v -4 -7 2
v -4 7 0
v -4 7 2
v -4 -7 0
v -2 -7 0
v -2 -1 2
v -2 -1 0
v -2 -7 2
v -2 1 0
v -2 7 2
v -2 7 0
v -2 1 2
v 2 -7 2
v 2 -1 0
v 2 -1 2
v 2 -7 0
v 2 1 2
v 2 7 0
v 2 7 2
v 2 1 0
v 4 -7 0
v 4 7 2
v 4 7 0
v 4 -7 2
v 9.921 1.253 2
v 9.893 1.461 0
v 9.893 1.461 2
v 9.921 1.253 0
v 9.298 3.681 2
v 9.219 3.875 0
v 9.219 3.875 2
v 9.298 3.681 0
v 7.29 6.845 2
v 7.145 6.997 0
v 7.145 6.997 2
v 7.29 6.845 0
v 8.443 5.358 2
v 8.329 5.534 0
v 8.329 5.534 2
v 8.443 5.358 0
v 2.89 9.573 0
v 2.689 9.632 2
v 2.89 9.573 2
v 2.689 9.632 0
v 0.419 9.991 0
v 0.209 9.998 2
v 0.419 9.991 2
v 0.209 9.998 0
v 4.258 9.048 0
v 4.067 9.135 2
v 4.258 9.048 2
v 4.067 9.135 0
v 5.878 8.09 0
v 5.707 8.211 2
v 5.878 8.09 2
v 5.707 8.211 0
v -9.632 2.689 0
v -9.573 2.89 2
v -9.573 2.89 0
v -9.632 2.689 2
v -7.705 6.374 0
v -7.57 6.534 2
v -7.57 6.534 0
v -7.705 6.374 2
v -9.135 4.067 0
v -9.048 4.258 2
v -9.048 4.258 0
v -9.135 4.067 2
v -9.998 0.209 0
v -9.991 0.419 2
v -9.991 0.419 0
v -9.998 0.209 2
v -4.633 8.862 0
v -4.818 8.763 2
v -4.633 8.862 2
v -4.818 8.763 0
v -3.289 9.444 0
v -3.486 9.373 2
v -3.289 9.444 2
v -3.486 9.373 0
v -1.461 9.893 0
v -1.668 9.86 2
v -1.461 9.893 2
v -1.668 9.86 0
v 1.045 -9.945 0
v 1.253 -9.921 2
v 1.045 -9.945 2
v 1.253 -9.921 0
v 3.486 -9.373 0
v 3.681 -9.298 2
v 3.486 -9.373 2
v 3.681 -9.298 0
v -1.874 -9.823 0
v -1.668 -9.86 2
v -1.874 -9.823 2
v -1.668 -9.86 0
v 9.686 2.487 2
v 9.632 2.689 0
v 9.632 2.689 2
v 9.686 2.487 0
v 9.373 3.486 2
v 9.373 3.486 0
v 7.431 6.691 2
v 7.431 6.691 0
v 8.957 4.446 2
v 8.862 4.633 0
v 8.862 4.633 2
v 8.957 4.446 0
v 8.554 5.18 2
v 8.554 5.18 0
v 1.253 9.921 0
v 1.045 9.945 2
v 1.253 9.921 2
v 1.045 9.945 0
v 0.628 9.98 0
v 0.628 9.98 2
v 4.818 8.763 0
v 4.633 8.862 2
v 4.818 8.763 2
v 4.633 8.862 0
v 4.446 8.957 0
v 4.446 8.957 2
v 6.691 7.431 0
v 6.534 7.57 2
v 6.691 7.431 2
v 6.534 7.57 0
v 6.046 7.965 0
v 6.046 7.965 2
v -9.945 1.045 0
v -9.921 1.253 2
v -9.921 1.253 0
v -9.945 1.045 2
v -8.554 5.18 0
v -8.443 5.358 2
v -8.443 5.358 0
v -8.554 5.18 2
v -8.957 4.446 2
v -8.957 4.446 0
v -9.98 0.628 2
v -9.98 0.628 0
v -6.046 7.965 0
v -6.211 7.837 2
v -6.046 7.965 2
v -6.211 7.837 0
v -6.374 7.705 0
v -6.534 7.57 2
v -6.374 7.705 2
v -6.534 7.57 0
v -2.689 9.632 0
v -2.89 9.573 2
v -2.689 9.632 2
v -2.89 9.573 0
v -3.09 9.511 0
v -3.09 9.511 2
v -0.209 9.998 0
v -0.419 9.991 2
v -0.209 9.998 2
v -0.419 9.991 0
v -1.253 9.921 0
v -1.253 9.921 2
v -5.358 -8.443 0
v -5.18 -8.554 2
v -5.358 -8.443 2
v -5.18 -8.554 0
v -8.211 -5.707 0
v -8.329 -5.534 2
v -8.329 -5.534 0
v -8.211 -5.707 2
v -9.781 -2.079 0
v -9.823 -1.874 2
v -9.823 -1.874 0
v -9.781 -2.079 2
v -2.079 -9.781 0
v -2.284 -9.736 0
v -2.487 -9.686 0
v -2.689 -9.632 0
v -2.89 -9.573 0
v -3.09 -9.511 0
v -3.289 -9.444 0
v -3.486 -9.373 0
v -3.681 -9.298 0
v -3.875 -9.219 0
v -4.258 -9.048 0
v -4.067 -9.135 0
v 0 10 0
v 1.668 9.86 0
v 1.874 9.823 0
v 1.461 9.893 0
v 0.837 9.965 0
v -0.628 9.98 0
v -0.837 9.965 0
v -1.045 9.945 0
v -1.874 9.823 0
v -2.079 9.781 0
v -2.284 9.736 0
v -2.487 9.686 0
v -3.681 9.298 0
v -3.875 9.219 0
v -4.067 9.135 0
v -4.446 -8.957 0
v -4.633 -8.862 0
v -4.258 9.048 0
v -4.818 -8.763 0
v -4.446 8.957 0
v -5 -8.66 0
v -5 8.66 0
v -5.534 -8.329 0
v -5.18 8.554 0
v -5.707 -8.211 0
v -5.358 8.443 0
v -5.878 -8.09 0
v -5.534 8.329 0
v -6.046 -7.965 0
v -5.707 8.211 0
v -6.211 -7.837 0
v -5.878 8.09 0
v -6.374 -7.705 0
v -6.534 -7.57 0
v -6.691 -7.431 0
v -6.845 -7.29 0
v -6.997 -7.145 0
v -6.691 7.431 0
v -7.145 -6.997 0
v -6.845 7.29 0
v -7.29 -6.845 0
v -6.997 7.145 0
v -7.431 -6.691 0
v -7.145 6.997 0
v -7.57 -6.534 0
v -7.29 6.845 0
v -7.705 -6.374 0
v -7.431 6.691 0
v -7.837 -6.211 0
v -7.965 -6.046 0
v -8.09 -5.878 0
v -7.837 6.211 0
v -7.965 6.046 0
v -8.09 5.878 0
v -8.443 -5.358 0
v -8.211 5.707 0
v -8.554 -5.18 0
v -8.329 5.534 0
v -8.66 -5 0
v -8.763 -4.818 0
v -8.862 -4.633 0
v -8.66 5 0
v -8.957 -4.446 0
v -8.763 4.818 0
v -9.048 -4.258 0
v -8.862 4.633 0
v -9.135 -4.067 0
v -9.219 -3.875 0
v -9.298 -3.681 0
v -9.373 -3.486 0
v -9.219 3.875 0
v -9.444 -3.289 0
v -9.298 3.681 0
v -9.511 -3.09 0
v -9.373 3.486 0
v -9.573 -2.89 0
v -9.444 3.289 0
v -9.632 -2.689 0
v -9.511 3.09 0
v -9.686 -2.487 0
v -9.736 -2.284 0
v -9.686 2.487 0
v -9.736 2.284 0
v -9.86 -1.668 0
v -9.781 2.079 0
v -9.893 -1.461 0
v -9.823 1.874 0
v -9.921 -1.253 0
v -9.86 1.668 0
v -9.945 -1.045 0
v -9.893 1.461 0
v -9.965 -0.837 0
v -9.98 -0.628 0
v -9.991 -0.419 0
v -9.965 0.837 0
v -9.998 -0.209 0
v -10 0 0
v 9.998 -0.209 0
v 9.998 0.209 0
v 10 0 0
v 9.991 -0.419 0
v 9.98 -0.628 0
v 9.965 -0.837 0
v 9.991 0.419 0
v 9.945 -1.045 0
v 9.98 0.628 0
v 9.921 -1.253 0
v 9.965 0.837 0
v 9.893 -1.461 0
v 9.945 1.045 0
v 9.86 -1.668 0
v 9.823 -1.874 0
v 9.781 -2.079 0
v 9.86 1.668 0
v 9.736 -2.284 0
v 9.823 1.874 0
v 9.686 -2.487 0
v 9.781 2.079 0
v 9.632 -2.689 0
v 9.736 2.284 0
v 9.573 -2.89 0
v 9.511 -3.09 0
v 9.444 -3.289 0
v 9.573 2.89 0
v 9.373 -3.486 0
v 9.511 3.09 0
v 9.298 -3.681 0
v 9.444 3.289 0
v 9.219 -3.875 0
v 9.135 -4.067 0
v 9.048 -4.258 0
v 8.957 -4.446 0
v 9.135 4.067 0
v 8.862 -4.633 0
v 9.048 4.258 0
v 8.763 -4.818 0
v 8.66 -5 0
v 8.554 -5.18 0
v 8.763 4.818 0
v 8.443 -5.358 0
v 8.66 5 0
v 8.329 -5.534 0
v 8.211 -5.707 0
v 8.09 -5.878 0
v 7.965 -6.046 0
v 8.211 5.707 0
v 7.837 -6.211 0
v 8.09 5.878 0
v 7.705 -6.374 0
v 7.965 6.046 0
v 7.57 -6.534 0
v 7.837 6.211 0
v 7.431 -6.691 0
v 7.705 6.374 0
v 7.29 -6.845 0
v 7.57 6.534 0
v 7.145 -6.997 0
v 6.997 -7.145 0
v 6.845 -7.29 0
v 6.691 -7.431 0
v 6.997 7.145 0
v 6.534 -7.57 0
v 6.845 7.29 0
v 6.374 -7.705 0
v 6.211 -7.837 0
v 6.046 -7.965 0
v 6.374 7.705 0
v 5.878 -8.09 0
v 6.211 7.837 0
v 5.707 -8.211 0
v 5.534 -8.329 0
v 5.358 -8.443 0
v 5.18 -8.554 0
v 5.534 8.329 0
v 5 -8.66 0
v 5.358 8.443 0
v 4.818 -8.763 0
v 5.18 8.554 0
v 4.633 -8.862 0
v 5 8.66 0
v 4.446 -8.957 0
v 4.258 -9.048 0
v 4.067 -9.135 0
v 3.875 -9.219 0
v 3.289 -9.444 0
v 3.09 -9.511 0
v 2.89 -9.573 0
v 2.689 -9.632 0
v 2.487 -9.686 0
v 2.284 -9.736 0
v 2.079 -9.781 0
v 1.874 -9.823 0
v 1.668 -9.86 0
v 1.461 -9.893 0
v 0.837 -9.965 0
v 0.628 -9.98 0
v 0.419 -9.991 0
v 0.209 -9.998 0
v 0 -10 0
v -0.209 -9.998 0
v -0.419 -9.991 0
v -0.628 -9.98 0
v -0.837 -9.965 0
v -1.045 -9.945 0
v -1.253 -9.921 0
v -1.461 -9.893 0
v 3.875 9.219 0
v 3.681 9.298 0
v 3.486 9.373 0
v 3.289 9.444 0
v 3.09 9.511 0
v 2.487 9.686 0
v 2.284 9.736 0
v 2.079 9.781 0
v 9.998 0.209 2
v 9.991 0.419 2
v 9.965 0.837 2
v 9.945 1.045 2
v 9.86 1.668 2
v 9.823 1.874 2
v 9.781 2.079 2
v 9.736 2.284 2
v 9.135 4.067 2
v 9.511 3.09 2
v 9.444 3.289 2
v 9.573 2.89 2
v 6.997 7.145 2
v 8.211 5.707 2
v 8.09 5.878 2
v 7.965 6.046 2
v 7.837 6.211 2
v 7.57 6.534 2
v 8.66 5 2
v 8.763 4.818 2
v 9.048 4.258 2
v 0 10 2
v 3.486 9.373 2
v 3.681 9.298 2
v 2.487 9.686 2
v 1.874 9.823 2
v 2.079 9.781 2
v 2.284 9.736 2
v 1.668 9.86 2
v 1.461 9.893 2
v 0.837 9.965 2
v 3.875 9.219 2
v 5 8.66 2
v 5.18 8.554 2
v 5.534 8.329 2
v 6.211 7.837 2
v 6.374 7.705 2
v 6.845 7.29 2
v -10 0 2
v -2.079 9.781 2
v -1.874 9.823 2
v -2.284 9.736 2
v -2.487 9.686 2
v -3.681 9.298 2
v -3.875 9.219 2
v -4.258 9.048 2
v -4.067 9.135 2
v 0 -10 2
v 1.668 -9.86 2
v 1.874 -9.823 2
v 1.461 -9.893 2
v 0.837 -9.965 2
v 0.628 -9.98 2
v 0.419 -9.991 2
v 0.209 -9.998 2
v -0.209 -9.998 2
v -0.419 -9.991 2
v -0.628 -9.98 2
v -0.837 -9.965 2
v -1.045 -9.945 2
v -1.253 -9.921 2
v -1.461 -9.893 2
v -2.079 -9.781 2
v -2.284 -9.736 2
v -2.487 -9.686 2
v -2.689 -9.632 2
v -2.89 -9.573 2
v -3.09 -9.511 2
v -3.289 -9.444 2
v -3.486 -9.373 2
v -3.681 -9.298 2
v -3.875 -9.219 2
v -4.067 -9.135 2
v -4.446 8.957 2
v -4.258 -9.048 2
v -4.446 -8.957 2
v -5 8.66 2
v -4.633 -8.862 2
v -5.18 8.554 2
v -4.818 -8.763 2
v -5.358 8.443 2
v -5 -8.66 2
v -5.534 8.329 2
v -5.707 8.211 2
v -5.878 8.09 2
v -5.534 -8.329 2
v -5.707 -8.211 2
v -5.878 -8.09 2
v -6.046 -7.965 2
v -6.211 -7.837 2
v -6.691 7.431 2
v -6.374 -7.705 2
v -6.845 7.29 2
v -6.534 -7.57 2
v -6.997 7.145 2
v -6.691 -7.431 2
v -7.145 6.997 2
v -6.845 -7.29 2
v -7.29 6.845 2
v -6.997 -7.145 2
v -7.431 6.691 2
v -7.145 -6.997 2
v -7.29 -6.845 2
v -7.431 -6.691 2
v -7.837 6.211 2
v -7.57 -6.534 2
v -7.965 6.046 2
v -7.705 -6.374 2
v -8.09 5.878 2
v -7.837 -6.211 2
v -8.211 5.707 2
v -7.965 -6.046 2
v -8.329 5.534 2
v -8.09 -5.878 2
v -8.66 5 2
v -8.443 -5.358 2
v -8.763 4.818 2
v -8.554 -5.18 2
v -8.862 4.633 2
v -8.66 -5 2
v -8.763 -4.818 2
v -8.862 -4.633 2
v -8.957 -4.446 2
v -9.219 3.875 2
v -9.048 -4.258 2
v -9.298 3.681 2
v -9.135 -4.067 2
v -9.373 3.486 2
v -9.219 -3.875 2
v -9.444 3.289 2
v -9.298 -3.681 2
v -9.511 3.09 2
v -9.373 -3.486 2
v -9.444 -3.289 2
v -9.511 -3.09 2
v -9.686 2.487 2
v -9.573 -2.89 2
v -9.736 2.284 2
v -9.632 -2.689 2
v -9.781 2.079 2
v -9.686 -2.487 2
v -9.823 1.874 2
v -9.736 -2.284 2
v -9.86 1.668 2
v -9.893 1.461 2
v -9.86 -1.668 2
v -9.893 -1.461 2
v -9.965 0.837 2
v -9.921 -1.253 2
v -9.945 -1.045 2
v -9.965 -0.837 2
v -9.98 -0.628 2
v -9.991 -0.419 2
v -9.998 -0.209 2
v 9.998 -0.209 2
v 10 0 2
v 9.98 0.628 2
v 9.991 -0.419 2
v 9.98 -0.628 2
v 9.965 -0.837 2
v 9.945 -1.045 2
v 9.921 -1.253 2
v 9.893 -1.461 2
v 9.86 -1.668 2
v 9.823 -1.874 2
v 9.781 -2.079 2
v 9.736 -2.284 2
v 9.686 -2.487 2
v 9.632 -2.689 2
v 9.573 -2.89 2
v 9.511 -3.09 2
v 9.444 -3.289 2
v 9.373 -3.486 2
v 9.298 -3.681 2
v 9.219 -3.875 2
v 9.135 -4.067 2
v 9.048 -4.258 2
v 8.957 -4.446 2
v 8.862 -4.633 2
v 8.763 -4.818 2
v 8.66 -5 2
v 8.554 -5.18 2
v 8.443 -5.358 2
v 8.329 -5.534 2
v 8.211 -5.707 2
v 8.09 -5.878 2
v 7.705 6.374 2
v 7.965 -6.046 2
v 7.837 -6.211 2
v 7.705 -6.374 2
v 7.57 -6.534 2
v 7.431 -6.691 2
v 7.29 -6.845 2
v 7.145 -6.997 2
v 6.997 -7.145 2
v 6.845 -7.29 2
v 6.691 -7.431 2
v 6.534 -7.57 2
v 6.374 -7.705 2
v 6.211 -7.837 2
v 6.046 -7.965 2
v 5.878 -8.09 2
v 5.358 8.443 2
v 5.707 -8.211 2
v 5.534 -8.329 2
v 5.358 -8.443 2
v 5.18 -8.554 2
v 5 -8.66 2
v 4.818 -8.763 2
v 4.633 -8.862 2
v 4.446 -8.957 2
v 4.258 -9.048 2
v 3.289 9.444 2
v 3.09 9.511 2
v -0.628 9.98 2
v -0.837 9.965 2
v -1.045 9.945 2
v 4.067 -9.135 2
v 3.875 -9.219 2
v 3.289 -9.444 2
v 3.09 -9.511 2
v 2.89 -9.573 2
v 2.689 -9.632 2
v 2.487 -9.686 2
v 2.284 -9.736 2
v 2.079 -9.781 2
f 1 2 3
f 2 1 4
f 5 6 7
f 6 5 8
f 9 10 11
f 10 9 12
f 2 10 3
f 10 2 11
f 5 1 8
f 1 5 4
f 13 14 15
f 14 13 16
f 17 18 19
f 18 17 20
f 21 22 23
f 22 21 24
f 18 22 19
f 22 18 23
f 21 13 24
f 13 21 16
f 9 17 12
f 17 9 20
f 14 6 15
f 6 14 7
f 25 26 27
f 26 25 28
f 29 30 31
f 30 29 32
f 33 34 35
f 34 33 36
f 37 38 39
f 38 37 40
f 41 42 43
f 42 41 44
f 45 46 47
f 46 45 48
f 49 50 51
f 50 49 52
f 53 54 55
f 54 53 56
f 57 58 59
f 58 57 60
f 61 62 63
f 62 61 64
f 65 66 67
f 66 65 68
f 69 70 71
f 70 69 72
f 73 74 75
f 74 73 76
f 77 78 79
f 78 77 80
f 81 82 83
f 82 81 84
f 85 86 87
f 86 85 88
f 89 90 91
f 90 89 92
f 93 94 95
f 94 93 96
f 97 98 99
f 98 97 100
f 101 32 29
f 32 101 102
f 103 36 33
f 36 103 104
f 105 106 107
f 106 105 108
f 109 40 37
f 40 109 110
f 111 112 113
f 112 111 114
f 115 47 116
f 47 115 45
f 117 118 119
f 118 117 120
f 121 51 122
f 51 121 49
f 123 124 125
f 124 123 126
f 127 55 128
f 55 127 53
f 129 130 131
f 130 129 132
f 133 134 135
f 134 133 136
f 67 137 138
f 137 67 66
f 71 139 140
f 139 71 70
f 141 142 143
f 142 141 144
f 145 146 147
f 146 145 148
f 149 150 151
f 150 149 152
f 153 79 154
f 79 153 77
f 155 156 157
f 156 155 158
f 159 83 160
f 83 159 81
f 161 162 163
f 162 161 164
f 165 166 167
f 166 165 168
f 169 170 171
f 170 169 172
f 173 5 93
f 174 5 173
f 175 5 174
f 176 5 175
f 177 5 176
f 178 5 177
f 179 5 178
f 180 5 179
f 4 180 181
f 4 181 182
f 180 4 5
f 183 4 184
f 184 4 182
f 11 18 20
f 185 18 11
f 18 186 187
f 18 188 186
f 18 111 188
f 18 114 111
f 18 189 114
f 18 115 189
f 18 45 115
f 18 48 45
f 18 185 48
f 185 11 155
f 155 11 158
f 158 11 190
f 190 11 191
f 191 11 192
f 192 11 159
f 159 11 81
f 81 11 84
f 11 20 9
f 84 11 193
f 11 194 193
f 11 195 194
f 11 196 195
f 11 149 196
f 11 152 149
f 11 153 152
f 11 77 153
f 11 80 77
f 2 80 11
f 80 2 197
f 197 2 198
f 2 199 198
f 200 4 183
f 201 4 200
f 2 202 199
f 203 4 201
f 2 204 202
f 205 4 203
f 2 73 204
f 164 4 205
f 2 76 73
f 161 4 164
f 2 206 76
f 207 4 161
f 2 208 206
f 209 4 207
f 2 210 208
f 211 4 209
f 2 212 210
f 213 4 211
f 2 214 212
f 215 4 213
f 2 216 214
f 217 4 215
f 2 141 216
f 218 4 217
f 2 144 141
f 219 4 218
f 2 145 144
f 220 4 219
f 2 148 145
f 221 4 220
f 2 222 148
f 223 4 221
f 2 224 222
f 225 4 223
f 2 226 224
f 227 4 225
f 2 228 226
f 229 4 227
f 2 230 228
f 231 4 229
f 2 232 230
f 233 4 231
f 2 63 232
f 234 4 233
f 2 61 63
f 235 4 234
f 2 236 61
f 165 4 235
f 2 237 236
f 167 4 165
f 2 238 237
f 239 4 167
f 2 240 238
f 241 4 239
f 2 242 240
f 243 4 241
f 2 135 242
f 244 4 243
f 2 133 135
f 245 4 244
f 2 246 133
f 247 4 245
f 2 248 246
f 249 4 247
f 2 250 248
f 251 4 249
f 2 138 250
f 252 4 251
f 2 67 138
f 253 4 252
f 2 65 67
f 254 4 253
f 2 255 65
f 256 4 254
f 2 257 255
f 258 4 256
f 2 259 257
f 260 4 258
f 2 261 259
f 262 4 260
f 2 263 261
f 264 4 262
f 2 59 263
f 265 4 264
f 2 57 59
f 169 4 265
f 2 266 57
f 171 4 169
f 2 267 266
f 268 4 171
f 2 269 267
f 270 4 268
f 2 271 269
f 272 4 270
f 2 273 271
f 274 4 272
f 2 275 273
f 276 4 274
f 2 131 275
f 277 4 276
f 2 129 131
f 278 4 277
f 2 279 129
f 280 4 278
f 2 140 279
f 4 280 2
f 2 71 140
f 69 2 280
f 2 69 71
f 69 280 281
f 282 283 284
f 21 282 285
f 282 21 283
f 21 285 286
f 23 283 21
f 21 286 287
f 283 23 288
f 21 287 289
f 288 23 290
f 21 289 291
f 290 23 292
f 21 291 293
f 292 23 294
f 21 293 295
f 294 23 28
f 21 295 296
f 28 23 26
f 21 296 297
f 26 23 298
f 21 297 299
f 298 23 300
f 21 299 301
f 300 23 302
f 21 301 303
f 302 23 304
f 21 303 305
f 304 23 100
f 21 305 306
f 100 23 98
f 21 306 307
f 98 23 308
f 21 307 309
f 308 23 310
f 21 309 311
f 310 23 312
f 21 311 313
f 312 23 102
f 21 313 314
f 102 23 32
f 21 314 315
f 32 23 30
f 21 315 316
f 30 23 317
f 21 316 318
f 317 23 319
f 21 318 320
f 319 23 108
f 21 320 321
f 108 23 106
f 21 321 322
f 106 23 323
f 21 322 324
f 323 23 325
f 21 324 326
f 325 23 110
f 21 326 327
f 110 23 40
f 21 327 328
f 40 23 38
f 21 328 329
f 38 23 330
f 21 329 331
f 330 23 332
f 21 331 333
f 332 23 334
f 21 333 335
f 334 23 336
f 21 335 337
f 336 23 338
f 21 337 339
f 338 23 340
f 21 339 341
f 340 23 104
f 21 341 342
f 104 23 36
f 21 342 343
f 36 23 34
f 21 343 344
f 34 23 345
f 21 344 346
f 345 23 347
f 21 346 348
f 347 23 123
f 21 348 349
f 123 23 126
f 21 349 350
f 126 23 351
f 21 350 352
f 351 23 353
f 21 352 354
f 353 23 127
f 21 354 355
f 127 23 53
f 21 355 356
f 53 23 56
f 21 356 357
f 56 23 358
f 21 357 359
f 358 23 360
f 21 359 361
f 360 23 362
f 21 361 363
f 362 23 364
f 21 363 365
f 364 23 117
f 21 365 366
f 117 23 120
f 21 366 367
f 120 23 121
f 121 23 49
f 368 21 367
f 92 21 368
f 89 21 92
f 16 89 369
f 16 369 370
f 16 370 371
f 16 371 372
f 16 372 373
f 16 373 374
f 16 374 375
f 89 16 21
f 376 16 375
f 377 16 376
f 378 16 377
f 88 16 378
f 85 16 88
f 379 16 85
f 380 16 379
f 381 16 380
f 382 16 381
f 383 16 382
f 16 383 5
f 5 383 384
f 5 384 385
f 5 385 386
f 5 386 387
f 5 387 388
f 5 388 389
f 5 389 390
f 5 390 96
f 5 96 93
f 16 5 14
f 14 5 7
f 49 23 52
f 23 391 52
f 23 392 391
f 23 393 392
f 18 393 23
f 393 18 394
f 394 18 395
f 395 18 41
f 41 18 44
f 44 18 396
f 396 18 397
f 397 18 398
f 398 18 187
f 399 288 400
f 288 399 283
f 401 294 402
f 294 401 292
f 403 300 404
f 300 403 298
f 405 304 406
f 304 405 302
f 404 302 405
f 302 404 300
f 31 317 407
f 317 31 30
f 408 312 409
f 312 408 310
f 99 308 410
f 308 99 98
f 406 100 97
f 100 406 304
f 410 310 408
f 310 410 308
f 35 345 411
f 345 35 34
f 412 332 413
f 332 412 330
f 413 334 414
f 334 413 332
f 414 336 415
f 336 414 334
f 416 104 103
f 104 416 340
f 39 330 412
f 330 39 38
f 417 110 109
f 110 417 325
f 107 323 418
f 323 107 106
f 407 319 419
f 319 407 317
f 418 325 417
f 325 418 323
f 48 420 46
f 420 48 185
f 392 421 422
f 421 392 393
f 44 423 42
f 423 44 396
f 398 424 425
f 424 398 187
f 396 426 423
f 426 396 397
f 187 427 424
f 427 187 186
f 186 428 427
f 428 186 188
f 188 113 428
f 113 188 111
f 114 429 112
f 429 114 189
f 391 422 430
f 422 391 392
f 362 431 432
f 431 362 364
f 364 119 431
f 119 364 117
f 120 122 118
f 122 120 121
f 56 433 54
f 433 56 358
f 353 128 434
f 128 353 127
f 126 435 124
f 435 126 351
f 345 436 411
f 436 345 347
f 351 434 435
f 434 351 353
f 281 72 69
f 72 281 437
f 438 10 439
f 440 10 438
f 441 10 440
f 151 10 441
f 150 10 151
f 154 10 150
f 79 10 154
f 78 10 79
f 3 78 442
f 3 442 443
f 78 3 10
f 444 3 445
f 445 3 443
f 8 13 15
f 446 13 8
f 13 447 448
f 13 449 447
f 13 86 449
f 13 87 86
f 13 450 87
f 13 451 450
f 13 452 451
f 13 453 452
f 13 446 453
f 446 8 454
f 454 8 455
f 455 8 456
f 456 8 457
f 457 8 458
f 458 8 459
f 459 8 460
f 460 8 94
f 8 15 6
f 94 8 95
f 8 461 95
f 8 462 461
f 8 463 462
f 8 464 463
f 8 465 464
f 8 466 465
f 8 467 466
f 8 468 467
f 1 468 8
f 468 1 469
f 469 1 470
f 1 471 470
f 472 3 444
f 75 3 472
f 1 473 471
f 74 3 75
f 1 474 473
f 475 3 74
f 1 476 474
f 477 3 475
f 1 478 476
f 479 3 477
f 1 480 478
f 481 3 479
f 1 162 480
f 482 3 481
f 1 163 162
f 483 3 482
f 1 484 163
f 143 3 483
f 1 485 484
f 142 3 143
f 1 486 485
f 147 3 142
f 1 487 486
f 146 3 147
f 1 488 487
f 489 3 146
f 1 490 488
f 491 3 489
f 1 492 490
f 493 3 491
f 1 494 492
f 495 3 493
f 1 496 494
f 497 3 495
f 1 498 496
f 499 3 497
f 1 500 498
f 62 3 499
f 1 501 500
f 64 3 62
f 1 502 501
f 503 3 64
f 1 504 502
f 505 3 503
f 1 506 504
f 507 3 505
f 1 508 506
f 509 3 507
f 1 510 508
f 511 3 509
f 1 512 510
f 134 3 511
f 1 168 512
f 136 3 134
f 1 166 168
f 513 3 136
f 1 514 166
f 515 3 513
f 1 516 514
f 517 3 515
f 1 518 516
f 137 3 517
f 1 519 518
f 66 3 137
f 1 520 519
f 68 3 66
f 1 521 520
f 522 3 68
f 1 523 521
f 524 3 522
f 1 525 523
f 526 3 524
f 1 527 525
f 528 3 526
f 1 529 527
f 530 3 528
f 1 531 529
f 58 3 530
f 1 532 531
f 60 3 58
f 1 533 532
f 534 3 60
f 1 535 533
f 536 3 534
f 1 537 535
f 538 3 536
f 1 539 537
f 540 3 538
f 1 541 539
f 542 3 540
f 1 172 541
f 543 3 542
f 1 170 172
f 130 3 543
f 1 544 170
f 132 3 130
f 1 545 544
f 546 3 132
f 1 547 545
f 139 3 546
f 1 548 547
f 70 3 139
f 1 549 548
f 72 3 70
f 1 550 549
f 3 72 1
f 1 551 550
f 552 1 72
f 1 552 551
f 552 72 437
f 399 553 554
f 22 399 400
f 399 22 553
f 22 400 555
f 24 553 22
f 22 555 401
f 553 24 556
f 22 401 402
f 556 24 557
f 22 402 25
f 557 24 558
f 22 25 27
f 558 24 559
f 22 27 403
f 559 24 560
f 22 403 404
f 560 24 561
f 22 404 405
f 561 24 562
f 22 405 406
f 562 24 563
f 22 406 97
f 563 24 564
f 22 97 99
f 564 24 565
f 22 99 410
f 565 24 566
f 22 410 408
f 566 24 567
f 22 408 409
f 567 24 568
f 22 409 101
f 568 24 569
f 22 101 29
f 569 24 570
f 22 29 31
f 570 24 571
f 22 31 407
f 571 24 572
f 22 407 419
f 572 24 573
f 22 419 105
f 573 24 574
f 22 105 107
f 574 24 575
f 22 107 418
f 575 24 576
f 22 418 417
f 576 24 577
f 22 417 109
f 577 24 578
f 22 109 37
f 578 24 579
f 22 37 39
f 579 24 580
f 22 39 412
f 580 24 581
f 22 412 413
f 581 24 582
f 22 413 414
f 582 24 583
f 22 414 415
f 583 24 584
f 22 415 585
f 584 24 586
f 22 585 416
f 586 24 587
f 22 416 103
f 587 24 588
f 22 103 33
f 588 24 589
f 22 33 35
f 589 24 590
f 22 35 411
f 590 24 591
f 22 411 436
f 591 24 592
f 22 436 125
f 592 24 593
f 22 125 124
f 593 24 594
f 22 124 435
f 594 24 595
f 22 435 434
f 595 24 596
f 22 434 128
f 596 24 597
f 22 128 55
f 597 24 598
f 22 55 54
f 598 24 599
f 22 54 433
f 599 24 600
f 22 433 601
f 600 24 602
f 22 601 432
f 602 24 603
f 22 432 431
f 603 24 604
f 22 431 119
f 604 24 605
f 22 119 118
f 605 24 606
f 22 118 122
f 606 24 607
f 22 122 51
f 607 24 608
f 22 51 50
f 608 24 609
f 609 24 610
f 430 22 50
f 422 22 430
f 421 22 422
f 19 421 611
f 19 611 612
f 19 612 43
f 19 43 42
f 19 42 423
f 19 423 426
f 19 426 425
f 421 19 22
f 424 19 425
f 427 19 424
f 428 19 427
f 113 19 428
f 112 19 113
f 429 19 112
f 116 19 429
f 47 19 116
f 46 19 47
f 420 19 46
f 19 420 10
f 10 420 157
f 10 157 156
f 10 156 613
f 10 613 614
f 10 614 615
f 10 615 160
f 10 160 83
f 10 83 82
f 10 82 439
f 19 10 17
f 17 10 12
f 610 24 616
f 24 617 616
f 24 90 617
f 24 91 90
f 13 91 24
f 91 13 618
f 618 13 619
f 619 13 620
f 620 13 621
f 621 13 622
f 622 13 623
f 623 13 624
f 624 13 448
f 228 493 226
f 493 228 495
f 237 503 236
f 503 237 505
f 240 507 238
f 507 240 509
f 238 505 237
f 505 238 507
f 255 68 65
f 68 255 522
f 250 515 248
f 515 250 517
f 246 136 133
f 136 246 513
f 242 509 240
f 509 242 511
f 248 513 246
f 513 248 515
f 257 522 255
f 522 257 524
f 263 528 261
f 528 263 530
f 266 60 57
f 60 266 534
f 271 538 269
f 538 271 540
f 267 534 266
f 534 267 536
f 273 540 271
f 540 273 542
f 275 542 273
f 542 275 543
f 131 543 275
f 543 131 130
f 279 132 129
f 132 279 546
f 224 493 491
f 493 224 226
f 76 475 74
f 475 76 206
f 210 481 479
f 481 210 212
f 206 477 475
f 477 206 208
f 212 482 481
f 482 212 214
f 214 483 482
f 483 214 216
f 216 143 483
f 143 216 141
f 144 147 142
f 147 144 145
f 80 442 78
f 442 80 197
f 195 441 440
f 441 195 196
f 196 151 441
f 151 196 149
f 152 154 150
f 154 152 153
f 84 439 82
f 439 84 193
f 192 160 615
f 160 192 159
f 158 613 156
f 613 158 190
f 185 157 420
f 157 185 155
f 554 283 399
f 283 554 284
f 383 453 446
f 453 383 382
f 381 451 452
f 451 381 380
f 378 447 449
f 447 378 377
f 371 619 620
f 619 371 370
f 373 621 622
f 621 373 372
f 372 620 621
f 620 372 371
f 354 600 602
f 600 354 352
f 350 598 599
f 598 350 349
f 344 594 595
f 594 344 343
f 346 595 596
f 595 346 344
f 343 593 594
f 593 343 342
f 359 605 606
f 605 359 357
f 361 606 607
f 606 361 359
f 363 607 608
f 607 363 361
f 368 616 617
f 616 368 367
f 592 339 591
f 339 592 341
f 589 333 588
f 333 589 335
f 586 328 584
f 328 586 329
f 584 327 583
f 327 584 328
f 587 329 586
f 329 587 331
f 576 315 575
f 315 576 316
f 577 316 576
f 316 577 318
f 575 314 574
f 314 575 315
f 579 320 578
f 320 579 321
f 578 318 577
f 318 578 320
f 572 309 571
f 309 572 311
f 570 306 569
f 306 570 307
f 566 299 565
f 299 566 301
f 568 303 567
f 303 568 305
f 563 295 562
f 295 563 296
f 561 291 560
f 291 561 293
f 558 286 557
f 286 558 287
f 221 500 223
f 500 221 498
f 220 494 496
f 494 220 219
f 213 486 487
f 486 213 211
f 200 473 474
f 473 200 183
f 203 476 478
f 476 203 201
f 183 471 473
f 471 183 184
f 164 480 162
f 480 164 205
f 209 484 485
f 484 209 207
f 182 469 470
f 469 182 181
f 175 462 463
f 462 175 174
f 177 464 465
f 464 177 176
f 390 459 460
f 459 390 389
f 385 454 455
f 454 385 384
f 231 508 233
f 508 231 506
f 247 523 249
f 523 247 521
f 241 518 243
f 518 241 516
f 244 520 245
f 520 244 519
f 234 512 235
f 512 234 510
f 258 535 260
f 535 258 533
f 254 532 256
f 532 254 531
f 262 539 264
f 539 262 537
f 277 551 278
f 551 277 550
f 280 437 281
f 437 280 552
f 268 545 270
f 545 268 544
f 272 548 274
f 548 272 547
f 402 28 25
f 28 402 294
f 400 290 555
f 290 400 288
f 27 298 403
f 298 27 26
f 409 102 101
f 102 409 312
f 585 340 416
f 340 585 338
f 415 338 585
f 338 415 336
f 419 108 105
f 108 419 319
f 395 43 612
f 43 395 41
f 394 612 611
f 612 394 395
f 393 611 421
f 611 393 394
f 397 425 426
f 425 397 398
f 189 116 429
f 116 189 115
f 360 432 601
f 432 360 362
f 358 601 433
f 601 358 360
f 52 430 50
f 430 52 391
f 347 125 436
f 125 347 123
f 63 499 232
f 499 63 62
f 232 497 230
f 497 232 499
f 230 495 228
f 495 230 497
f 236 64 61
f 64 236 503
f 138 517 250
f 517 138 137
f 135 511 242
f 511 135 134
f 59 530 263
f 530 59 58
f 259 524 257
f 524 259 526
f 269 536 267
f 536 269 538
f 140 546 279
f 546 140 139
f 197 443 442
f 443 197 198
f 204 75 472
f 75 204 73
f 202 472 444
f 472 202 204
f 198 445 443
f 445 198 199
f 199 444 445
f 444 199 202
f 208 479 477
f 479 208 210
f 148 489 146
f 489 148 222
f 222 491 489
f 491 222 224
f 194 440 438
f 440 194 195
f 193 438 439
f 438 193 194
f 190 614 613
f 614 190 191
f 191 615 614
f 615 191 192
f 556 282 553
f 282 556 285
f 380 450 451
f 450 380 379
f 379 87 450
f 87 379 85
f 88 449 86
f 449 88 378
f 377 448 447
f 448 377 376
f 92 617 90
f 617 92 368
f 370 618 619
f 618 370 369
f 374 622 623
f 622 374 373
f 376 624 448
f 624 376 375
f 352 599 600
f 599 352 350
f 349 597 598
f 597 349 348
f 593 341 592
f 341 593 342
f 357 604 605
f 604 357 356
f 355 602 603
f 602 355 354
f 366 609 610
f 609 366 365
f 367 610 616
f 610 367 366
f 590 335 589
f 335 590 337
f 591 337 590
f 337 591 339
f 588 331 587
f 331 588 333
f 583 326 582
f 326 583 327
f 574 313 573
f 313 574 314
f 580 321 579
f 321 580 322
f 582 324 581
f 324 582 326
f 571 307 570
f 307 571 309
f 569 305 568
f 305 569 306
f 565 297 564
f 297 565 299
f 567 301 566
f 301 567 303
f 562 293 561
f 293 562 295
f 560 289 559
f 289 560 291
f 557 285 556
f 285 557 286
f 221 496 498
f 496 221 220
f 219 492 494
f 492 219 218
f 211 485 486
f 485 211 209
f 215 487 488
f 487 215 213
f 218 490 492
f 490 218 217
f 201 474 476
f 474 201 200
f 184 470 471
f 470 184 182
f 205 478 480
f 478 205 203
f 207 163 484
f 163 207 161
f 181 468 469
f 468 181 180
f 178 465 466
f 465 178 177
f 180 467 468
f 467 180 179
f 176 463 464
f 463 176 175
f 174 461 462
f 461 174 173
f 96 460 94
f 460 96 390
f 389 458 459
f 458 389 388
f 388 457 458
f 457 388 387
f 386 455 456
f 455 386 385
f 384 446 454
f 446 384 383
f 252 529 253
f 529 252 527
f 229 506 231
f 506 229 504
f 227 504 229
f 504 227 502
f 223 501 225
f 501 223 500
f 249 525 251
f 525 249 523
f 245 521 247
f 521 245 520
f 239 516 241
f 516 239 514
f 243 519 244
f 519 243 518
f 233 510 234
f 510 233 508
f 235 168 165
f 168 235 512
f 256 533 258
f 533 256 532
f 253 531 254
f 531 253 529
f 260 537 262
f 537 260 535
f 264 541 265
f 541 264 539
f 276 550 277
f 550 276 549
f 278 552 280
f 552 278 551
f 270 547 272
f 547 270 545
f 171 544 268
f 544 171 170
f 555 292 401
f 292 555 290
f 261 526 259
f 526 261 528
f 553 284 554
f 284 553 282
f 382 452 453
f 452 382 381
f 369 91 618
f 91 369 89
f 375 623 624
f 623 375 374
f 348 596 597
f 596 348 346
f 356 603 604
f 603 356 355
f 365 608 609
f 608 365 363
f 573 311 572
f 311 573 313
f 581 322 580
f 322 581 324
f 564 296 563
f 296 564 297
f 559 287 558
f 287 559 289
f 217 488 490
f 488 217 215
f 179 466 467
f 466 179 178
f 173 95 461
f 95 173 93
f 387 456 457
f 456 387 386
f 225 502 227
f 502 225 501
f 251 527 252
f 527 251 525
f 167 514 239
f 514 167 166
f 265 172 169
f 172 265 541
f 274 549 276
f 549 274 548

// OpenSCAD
/* [Global] */
coin_diameter=20;
coin_thickness=2;

/* [Hidden] */
radius=coin_diameter/2;
fn=300;


module base(){
	 color("yellow")cylinder(h=coin_thickness, r=radius, $fn=fn);
}

module h(){
    h_width = 0.1*coin_diameter;
    h_height = coin_thickness*3;
    translate([-0.3*radius,0,0])cube([h_width,0.7*coin_diameter,h_height], center=true);
    translate([0.3*radius,0,0])cube([h_width,0.7*coin_diameter,h_height], center=true);
    cube([0.6*radius, h_width,h_height], center=true);
}

module token(){
    difference(){
        base();
        h();
    }
}

token();
